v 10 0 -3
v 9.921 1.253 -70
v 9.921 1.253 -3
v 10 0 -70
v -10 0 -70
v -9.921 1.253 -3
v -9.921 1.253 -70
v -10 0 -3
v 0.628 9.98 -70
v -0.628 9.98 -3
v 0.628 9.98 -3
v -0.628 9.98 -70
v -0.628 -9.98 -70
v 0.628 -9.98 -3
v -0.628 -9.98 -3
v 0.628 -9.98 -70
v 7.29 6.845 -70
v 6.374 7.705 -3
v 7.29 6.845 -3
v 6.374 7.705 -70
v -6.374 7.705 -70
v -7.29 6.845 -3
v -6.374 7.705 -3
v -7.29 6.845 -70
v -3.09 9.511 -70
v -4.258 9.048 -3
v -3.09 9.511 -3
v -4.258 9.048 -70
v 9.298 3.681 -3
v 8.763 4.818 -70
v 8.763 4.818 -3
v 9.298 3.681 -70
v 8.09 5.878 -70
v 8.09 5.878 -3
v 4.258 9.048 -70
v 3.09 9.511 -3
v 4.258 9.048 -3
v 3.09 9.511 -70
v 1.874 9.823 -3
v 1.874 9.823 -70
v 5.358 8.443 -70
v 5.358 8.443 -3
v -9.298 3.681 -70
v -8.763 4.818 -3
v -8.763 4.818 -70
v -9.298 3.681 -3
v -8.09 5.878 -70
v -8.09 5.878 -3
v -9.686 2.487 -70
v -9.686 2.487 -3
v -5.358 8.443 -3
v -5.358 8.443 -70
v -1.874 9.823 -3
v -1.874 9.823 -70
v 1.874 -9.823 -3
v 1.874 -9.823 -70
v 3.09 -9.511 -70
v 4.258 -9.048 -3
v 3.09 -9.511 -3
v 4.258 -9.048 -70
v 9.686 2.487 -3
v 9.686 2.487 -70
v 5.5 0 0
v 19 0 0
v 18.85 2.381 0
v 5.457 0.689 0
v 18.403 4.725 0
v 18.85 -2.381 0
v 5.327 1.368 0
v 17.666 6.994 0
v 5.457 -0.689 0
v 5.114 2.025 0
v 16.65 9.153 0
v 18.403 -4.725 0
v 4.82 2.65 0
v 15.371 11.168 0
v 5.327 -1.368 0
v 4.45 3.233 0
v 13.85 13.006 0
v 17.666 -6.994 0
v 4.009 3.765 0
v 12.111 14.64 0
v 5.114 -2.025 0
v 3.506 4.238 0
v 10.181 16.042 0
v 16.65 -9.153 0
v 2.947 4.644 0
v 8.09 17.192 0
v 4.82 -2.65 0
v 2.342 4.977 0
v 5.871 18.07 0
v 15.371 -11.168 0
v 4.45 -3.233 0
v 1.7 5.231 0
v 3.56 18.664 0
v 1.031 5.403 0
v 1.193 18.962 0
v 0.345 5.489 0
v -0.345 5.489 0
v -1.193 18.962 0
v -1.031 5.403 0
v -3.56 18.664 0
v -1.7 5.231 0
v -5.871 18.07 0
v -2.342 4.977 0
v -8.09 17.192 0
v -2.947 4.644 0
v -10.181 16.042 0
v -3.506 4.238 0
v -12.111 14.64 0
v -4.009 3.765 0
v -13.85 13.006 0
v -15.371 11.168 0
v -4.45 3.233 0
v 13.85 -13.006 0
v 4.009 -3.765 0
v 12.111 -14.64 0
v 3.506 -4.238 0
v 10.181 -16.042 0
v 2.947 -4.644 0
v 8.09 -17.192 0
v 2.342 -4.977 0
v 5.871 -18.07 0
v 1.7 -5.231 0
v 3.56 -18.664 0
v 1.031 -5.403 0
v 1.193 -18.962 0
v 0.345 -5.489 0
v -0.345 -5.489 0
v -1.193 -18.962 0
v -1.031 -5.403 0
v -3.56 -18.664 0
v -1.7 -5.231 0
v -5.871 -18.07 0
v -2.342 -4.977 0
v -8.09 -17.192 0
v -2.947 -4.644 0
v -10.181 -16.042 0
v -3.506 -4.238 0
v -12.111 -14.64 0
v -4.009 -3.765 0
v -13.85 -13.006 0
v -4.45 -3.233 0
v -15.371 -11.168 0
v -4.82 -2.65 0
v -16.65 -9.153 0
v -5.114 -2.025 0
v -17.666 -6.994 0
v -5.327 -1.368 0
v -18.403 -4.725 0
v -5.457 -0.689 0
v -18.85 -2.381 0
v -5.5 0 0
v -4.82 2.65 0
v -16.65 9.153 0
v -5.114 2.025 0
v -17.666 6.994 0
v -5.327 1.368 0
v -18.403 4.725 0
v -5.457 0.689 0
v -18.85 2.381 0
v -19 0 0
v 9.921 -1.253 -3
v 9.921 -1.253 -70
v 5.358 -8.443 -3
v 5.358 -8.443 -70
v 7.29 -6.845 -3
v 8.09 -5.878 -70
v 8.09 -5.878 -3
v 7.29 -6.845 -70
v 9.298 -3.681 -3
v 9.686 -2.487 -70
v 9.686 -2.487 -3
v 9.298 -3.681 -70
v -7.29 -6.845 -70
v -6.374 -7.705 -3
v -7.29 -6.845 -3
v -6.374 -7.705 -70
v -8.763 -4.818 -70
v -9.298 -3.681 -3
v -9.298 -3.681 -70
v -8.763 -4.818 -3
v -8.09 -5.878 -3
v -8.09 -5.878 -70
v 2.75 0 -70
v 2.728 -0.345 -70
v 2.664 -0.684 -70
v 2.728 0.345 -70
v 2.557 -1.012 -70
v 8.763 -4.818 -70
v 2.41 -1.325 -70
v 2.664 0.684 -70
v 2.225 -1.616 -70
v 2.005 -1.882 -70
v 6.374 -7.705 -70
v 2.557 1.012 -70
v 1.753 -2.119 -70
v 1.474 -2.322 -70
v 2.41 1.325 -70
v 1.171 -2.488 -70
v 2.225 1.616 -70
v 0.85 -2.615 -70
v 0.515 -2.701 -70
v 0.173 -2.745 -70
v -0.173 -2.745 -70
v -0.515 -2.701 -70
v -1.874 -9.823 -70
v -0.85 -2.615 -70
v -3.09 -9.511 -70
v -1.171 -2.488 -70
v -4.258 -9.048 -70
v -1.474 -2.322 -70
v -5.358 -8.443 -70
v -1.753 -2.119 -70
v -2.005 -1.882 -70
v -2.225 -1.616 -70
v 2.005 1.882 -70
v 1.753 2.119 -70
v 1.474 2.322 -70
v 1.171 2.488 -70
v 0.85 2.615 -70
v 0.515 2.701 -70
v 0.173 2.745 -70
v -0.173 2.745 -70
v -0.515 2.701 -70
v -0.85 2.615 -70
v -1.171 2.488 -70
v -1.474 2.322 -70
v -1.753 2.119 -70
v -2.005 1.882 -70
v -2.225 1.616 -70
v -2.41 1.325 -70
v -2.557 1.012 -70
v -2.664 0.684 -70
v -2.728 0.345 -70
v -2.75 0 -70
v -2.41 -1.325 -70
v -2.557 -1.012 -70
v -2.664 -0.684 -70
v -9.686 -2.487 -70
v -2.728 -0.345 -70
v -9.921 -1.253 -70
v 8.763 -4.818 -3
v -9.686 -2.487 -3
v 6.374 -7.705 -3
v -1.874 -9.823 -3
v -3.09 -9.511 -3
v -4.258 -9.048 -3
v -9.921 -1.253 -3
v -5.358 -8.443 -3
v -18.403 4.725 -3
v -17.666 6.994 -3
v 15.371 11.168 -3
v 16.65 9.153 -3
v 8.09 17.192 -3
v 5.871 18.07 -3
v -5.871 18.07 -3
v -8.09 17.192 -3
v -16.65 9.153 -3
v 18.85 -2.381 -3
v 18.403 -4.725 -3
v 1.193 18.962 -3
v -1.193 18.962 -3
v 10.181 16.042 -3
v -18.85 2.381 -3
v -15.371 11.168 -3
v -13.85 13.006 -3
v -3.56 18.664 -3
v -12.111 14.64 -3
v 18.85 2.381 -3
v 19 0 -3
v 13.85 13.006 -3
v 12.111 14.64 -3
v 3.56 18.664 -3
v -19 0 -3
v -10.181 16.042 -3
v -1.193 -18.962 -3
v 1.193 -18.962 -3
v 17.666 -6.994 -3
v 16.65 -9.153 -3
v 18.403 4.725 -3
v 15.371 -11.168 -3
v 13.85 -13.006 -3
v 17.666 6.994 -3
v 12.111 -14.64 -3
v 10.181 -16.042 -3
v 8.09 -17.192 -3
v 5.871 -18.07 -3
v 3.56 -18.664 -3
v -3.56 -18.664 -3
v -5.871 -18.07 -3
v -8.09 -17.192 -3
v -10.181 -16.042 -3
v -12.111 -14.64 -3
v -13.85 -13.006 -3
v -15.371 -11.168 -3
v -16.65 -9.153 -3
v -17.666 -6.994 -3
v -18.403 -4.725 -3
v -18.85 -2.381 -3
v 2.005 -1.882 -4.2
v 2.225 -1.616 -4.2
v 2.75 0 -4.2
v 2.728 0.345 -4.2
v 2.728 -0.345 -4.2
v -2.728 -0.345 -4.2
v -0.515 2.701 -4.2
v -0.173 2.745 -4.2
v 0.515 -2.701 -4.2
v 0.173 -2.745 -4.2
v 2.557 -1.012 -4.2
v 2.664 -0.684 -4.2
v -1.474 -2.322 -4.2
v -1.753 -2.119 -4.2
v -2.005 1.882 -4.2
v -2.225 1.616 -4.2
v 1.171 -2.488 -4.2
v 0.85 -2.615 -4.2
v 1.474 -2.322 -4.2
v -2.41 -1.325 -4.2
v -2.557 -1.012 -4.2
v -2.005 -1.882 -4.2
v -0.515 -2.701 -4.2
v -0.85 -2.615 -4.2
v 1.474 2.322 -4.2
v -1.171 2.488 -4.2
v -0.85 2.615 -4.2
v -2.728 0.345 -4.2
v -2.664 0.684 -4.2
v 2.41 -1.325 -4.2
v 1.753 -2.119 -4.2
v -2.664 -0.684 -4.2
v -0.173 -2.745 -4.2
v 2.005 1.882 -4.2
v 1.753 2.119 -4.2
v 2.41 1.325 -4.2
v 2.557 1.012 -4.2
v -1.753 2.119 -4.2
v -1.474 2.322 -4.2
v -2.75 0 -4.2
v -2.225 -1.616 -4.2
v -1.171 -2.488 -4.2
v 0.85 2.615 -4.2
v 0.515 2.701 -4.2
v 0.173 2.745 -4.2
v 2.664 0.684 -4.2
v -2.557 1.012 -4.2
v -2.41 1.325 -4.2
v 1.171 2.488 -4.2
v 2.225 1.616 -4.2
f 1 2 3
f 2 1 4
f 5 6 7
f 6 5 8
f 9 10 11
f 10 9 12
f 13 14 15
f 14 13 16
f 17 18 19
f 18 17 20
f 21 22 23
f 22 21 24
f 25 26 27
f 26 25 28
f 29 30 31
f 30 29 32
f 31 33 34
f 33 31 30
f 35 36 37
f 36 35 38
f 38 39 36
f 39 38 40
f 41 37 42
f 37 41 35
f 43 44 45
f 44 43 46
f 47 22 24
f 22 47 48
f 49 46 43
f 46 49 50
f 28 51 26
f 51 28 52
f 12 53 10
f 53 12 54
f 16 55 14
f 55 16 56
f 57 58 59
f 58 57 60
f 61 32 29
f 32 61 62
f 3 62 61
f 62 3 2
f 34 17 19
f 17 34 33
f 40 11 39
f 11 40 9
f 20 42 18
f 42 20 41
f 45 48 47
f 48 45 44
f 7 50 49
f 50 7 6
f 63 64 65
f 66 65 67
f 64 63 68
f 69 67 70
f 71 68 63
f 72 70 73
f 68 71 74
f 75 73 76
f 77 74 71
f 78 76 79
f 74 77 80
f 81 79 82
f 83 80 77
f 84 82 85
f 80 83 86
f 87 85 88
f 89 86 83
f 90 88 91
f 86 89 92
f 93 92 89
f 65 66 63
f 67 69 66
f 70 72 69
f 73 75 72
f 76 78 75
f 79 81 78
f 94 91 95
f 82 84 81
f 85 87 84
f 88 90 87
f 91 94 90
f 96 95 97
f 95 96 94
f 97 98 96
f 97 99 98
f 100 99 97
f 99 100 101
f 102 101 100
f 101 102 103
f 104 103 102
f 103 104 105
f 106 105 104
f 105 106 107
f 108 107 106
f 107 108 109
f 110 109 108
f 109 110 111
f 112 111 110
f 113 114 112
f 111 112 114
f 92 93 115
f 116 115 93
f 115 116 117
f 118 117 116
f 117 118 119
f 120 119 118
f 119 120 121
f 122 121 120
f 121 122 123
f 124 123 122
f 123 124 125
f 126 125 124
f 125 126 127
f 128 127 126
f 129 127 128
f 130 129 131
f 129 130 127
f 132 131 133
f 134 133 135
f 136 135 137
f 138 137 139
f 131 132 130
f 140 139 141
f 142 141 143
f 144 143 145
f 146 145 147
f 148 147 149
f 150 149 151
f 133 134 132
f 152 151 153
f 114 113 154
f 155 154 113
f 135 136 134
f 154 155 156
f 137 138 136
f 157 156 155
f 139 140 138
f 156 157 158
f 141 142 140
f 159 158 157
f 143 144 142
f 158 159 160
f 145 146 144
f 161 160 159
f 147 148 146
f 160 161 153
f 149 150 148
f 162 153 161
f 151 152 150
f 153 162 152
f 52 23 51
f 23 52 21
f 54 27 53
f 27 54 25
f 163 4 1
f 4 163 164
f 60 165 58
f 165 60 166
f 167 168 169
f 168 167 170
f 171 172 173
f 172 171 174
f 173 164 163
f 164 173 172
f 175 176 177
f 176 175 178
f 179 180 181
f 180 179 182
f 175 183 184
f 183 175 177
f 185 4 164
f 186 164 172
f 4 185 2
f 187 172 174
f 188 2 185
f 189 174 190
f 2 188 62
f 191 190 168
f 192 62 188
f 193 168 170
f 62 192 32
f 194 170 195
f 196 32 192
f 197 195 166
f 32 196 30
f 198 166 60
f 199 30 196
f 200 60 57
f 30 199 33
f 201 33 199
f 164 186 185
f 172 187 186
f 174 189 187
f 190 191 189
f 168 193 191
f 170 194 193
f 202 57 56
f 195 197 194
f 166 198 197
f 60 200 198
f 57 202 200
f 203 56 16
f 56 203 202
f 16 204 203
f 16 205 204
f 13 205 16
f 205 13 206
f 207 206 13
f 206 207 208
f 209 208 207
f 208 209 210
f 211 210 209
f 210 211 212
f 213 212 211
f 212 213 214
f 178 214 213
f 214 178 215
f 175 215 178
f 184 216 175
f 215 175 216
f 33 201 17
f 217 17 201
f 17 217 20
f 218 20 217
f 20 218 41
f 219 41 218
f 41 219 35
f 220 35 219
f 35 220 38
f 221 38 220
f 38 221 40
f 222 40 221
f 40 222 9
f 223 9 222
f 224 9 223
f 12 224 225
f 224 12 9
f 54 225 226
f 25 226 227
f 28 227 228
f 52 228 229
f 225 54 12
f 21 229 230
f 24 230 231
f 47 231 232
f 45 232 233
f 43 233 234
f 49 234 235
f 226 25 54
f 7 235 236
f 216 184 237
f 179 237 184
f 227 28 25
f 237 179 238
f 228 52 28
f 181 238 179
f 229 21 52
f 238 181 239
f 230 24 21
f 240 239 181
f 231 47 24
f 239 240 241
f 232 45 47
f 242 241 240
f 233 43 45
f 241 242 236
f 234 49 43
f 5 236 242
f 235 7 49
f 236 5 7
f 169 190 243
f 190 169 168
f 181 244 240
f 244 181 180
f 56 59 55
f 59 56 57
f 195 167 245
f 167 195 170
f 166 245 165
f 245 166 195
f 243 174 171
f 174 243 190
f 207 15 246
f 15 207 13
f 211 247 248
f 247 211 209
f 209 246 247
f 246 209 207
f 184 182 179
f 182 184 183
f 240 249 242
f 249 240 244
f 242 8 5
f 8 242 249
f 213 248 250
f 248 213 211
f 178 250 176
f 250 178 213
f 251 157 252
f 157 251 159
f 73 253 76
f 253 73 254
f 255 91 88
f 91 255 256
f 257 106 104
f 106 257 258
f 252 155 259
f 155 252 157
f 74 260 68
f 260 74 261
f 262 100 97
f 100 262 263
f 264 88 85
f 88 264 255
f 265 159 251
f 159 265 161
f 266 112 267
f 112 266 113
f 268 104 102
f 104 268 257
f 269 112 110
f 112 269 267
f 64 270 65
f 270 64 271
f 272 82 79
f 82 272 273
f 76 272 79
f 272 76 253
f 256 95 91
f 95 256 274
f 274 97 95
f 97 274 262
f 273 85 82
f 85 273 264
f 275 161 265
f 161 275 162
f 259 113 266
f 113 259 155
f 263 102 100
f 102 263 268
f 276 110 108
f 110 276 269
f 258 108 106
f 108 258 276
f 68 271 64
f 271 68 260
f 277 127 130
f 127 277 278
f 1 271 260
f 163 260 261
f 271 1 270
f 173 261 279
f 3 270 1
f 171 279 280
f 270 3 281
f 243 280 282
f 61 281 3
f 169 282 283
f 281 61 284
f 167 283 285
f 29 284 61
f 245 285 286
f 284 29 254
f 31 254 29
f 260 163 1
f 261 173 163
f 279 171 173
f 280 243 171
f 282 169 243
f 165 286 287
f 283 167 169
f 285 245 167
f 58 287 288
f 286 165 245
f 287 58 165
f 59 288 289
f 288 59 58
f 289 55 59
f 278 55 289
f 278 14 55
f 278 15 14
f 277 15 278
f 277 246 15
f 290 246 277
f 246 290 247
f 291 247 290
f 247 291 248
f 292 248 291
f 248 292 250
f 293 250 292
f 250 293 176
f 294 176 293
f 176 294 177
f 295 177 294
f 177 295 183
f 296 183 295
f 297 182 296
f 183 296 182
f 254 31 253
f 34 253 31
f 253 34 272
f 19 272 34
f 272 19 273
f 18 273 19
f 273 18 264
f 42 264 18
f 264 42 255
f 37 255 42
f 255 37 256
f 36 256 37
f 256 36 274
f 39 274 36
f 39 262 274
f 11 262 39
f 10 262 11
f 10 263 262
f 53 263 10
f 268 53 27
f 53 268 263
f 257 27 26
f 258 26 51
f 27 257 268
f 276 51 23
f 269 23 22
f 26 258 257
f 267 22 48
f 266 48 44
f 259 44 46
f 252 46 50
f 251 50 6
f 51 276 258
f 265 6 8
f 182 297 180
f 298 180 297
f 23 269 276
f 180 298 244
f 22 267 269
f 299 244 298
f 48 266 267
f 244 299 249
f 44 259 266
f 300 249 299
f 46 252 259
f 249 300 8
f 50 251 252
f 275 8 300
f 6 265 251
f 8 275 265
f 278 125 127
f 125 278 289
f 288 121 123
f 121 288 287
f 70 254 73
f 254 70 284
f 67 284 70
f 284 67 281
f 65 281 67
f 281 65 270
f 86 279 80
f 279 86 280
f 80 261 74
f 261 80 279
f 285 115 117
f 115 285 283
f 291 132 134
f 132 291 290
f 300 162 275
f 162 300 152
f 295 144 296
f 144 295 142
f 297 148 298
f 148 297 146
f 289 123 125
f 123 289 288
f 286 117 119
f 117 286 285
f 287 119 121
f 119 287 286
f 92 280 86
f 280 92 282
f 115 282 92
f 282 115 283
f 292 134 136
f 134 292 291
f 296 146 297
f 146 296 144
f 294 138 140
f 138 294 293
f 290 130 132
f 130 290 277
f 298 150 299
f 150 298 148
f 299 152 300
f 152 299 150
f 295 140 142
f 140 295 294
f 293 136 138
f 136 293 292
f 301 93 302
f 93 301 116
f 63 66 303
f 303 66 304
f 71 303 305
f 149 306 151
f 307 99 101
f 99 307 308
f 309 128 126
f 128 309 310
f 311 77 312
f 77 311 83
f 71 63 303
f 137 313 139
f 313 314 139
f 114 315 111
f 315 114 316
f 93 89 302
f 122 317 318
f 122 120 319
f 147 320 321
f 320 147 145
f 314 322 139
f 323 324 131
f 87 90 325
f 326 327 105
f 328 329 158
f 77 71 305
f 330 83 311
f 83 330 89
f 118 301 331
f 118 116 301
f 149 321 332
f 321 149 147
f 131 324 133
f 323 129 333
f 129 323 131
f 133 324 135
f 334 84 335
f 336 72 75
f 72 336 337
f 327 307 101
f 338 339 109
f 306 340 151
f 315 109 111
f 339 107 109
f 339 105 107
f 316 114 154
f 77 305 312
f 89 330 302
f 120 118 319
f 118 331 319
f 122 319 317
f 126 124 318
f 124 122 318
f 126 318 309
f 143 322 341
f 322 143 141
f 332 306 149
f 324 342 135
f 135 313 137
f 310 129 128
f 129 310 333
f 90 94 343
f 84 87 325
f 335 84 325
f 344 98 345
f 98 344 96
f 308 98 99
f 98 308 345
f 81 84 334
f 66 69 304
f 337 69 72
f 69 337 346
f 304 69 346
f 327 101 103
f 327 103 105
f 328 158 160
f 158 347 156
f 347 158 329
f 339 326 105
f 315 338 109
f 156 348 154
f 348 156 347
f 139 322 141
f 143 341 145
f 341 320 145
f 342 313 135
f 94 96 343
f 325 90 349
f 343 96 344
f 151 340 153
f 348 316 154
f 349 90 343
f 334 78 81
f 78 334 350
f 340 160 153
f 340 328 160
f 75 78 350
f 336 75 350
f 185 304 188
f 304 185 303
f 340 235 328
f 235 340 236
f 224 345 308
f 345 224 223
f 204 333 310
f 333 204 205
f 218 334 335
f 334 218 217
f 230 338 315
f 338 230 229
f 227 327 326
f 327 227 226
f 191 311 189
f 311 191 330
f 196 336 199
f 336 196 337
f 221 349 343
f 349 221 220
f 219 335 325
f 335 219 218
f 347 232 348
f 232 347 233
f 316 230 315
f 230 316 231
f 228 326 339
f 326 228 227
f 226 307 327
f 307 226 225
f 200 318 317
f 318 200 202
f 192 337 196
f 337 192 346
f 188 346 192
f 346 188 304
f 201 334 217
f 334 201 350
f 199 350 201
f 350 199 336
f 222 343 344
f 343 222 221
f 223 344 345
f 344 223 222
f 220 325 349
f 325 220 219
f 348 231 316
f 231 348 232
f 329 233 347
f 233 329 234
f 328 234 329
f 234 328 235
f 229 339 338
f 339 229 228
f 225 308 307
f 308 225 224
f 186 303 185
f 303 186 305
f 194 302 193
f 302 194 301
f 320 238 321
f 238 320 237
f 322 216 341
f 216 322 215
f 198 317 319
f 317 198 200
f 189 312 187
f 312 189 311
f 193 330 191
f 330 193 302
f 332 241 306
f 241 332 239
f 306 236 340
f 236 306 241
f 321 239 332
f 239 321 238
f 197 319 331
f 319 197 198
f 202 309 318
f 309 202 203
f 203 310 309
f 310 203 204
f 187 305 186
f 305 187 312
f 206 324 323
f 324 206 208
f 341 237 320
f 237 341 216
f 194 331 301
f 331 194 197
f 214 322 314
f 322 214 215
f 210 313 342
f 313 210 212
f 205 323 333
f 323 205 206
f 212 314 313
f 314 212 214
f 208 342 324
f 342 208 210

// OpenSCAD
$fn = 50;


difference() {
	union() {
		translate(v = [0, 0, -70.0000000000]) {
			cylinder(h = 70, r = 10.0000000000);
		}
		translate(v = [0, 0, -3.0000000000]) {
			cylinder(h = 3, r = 19.0000000000);
		}
	}
	union() {
		translate(v = [0, 0, 0]) {
			rotate(a = [0, 0, 0]) {
				difference() {
					union() {
						#translate(v = [0, 0, -70.0000000000]) {
							cylinder(h = 70, r = 2.2500000000);
						}
						#translate(v = [0, 0, -4.2000000000]) {
							cylinder(h = 4.2000000000, r1 = 2.7500000000, r2 = 5.5000000000);
						}
						#translate(v = [0, 0, -70.0000000000]) {
							cylinder(h = 70, r = 2.7500000000);
						}
						#translate(v = [0, 0, -70.0000000000]) {
							cylinder(h = 70, r = 2.2500000000);
						}
					}
					union();
				}
			}
		}
	}
}
